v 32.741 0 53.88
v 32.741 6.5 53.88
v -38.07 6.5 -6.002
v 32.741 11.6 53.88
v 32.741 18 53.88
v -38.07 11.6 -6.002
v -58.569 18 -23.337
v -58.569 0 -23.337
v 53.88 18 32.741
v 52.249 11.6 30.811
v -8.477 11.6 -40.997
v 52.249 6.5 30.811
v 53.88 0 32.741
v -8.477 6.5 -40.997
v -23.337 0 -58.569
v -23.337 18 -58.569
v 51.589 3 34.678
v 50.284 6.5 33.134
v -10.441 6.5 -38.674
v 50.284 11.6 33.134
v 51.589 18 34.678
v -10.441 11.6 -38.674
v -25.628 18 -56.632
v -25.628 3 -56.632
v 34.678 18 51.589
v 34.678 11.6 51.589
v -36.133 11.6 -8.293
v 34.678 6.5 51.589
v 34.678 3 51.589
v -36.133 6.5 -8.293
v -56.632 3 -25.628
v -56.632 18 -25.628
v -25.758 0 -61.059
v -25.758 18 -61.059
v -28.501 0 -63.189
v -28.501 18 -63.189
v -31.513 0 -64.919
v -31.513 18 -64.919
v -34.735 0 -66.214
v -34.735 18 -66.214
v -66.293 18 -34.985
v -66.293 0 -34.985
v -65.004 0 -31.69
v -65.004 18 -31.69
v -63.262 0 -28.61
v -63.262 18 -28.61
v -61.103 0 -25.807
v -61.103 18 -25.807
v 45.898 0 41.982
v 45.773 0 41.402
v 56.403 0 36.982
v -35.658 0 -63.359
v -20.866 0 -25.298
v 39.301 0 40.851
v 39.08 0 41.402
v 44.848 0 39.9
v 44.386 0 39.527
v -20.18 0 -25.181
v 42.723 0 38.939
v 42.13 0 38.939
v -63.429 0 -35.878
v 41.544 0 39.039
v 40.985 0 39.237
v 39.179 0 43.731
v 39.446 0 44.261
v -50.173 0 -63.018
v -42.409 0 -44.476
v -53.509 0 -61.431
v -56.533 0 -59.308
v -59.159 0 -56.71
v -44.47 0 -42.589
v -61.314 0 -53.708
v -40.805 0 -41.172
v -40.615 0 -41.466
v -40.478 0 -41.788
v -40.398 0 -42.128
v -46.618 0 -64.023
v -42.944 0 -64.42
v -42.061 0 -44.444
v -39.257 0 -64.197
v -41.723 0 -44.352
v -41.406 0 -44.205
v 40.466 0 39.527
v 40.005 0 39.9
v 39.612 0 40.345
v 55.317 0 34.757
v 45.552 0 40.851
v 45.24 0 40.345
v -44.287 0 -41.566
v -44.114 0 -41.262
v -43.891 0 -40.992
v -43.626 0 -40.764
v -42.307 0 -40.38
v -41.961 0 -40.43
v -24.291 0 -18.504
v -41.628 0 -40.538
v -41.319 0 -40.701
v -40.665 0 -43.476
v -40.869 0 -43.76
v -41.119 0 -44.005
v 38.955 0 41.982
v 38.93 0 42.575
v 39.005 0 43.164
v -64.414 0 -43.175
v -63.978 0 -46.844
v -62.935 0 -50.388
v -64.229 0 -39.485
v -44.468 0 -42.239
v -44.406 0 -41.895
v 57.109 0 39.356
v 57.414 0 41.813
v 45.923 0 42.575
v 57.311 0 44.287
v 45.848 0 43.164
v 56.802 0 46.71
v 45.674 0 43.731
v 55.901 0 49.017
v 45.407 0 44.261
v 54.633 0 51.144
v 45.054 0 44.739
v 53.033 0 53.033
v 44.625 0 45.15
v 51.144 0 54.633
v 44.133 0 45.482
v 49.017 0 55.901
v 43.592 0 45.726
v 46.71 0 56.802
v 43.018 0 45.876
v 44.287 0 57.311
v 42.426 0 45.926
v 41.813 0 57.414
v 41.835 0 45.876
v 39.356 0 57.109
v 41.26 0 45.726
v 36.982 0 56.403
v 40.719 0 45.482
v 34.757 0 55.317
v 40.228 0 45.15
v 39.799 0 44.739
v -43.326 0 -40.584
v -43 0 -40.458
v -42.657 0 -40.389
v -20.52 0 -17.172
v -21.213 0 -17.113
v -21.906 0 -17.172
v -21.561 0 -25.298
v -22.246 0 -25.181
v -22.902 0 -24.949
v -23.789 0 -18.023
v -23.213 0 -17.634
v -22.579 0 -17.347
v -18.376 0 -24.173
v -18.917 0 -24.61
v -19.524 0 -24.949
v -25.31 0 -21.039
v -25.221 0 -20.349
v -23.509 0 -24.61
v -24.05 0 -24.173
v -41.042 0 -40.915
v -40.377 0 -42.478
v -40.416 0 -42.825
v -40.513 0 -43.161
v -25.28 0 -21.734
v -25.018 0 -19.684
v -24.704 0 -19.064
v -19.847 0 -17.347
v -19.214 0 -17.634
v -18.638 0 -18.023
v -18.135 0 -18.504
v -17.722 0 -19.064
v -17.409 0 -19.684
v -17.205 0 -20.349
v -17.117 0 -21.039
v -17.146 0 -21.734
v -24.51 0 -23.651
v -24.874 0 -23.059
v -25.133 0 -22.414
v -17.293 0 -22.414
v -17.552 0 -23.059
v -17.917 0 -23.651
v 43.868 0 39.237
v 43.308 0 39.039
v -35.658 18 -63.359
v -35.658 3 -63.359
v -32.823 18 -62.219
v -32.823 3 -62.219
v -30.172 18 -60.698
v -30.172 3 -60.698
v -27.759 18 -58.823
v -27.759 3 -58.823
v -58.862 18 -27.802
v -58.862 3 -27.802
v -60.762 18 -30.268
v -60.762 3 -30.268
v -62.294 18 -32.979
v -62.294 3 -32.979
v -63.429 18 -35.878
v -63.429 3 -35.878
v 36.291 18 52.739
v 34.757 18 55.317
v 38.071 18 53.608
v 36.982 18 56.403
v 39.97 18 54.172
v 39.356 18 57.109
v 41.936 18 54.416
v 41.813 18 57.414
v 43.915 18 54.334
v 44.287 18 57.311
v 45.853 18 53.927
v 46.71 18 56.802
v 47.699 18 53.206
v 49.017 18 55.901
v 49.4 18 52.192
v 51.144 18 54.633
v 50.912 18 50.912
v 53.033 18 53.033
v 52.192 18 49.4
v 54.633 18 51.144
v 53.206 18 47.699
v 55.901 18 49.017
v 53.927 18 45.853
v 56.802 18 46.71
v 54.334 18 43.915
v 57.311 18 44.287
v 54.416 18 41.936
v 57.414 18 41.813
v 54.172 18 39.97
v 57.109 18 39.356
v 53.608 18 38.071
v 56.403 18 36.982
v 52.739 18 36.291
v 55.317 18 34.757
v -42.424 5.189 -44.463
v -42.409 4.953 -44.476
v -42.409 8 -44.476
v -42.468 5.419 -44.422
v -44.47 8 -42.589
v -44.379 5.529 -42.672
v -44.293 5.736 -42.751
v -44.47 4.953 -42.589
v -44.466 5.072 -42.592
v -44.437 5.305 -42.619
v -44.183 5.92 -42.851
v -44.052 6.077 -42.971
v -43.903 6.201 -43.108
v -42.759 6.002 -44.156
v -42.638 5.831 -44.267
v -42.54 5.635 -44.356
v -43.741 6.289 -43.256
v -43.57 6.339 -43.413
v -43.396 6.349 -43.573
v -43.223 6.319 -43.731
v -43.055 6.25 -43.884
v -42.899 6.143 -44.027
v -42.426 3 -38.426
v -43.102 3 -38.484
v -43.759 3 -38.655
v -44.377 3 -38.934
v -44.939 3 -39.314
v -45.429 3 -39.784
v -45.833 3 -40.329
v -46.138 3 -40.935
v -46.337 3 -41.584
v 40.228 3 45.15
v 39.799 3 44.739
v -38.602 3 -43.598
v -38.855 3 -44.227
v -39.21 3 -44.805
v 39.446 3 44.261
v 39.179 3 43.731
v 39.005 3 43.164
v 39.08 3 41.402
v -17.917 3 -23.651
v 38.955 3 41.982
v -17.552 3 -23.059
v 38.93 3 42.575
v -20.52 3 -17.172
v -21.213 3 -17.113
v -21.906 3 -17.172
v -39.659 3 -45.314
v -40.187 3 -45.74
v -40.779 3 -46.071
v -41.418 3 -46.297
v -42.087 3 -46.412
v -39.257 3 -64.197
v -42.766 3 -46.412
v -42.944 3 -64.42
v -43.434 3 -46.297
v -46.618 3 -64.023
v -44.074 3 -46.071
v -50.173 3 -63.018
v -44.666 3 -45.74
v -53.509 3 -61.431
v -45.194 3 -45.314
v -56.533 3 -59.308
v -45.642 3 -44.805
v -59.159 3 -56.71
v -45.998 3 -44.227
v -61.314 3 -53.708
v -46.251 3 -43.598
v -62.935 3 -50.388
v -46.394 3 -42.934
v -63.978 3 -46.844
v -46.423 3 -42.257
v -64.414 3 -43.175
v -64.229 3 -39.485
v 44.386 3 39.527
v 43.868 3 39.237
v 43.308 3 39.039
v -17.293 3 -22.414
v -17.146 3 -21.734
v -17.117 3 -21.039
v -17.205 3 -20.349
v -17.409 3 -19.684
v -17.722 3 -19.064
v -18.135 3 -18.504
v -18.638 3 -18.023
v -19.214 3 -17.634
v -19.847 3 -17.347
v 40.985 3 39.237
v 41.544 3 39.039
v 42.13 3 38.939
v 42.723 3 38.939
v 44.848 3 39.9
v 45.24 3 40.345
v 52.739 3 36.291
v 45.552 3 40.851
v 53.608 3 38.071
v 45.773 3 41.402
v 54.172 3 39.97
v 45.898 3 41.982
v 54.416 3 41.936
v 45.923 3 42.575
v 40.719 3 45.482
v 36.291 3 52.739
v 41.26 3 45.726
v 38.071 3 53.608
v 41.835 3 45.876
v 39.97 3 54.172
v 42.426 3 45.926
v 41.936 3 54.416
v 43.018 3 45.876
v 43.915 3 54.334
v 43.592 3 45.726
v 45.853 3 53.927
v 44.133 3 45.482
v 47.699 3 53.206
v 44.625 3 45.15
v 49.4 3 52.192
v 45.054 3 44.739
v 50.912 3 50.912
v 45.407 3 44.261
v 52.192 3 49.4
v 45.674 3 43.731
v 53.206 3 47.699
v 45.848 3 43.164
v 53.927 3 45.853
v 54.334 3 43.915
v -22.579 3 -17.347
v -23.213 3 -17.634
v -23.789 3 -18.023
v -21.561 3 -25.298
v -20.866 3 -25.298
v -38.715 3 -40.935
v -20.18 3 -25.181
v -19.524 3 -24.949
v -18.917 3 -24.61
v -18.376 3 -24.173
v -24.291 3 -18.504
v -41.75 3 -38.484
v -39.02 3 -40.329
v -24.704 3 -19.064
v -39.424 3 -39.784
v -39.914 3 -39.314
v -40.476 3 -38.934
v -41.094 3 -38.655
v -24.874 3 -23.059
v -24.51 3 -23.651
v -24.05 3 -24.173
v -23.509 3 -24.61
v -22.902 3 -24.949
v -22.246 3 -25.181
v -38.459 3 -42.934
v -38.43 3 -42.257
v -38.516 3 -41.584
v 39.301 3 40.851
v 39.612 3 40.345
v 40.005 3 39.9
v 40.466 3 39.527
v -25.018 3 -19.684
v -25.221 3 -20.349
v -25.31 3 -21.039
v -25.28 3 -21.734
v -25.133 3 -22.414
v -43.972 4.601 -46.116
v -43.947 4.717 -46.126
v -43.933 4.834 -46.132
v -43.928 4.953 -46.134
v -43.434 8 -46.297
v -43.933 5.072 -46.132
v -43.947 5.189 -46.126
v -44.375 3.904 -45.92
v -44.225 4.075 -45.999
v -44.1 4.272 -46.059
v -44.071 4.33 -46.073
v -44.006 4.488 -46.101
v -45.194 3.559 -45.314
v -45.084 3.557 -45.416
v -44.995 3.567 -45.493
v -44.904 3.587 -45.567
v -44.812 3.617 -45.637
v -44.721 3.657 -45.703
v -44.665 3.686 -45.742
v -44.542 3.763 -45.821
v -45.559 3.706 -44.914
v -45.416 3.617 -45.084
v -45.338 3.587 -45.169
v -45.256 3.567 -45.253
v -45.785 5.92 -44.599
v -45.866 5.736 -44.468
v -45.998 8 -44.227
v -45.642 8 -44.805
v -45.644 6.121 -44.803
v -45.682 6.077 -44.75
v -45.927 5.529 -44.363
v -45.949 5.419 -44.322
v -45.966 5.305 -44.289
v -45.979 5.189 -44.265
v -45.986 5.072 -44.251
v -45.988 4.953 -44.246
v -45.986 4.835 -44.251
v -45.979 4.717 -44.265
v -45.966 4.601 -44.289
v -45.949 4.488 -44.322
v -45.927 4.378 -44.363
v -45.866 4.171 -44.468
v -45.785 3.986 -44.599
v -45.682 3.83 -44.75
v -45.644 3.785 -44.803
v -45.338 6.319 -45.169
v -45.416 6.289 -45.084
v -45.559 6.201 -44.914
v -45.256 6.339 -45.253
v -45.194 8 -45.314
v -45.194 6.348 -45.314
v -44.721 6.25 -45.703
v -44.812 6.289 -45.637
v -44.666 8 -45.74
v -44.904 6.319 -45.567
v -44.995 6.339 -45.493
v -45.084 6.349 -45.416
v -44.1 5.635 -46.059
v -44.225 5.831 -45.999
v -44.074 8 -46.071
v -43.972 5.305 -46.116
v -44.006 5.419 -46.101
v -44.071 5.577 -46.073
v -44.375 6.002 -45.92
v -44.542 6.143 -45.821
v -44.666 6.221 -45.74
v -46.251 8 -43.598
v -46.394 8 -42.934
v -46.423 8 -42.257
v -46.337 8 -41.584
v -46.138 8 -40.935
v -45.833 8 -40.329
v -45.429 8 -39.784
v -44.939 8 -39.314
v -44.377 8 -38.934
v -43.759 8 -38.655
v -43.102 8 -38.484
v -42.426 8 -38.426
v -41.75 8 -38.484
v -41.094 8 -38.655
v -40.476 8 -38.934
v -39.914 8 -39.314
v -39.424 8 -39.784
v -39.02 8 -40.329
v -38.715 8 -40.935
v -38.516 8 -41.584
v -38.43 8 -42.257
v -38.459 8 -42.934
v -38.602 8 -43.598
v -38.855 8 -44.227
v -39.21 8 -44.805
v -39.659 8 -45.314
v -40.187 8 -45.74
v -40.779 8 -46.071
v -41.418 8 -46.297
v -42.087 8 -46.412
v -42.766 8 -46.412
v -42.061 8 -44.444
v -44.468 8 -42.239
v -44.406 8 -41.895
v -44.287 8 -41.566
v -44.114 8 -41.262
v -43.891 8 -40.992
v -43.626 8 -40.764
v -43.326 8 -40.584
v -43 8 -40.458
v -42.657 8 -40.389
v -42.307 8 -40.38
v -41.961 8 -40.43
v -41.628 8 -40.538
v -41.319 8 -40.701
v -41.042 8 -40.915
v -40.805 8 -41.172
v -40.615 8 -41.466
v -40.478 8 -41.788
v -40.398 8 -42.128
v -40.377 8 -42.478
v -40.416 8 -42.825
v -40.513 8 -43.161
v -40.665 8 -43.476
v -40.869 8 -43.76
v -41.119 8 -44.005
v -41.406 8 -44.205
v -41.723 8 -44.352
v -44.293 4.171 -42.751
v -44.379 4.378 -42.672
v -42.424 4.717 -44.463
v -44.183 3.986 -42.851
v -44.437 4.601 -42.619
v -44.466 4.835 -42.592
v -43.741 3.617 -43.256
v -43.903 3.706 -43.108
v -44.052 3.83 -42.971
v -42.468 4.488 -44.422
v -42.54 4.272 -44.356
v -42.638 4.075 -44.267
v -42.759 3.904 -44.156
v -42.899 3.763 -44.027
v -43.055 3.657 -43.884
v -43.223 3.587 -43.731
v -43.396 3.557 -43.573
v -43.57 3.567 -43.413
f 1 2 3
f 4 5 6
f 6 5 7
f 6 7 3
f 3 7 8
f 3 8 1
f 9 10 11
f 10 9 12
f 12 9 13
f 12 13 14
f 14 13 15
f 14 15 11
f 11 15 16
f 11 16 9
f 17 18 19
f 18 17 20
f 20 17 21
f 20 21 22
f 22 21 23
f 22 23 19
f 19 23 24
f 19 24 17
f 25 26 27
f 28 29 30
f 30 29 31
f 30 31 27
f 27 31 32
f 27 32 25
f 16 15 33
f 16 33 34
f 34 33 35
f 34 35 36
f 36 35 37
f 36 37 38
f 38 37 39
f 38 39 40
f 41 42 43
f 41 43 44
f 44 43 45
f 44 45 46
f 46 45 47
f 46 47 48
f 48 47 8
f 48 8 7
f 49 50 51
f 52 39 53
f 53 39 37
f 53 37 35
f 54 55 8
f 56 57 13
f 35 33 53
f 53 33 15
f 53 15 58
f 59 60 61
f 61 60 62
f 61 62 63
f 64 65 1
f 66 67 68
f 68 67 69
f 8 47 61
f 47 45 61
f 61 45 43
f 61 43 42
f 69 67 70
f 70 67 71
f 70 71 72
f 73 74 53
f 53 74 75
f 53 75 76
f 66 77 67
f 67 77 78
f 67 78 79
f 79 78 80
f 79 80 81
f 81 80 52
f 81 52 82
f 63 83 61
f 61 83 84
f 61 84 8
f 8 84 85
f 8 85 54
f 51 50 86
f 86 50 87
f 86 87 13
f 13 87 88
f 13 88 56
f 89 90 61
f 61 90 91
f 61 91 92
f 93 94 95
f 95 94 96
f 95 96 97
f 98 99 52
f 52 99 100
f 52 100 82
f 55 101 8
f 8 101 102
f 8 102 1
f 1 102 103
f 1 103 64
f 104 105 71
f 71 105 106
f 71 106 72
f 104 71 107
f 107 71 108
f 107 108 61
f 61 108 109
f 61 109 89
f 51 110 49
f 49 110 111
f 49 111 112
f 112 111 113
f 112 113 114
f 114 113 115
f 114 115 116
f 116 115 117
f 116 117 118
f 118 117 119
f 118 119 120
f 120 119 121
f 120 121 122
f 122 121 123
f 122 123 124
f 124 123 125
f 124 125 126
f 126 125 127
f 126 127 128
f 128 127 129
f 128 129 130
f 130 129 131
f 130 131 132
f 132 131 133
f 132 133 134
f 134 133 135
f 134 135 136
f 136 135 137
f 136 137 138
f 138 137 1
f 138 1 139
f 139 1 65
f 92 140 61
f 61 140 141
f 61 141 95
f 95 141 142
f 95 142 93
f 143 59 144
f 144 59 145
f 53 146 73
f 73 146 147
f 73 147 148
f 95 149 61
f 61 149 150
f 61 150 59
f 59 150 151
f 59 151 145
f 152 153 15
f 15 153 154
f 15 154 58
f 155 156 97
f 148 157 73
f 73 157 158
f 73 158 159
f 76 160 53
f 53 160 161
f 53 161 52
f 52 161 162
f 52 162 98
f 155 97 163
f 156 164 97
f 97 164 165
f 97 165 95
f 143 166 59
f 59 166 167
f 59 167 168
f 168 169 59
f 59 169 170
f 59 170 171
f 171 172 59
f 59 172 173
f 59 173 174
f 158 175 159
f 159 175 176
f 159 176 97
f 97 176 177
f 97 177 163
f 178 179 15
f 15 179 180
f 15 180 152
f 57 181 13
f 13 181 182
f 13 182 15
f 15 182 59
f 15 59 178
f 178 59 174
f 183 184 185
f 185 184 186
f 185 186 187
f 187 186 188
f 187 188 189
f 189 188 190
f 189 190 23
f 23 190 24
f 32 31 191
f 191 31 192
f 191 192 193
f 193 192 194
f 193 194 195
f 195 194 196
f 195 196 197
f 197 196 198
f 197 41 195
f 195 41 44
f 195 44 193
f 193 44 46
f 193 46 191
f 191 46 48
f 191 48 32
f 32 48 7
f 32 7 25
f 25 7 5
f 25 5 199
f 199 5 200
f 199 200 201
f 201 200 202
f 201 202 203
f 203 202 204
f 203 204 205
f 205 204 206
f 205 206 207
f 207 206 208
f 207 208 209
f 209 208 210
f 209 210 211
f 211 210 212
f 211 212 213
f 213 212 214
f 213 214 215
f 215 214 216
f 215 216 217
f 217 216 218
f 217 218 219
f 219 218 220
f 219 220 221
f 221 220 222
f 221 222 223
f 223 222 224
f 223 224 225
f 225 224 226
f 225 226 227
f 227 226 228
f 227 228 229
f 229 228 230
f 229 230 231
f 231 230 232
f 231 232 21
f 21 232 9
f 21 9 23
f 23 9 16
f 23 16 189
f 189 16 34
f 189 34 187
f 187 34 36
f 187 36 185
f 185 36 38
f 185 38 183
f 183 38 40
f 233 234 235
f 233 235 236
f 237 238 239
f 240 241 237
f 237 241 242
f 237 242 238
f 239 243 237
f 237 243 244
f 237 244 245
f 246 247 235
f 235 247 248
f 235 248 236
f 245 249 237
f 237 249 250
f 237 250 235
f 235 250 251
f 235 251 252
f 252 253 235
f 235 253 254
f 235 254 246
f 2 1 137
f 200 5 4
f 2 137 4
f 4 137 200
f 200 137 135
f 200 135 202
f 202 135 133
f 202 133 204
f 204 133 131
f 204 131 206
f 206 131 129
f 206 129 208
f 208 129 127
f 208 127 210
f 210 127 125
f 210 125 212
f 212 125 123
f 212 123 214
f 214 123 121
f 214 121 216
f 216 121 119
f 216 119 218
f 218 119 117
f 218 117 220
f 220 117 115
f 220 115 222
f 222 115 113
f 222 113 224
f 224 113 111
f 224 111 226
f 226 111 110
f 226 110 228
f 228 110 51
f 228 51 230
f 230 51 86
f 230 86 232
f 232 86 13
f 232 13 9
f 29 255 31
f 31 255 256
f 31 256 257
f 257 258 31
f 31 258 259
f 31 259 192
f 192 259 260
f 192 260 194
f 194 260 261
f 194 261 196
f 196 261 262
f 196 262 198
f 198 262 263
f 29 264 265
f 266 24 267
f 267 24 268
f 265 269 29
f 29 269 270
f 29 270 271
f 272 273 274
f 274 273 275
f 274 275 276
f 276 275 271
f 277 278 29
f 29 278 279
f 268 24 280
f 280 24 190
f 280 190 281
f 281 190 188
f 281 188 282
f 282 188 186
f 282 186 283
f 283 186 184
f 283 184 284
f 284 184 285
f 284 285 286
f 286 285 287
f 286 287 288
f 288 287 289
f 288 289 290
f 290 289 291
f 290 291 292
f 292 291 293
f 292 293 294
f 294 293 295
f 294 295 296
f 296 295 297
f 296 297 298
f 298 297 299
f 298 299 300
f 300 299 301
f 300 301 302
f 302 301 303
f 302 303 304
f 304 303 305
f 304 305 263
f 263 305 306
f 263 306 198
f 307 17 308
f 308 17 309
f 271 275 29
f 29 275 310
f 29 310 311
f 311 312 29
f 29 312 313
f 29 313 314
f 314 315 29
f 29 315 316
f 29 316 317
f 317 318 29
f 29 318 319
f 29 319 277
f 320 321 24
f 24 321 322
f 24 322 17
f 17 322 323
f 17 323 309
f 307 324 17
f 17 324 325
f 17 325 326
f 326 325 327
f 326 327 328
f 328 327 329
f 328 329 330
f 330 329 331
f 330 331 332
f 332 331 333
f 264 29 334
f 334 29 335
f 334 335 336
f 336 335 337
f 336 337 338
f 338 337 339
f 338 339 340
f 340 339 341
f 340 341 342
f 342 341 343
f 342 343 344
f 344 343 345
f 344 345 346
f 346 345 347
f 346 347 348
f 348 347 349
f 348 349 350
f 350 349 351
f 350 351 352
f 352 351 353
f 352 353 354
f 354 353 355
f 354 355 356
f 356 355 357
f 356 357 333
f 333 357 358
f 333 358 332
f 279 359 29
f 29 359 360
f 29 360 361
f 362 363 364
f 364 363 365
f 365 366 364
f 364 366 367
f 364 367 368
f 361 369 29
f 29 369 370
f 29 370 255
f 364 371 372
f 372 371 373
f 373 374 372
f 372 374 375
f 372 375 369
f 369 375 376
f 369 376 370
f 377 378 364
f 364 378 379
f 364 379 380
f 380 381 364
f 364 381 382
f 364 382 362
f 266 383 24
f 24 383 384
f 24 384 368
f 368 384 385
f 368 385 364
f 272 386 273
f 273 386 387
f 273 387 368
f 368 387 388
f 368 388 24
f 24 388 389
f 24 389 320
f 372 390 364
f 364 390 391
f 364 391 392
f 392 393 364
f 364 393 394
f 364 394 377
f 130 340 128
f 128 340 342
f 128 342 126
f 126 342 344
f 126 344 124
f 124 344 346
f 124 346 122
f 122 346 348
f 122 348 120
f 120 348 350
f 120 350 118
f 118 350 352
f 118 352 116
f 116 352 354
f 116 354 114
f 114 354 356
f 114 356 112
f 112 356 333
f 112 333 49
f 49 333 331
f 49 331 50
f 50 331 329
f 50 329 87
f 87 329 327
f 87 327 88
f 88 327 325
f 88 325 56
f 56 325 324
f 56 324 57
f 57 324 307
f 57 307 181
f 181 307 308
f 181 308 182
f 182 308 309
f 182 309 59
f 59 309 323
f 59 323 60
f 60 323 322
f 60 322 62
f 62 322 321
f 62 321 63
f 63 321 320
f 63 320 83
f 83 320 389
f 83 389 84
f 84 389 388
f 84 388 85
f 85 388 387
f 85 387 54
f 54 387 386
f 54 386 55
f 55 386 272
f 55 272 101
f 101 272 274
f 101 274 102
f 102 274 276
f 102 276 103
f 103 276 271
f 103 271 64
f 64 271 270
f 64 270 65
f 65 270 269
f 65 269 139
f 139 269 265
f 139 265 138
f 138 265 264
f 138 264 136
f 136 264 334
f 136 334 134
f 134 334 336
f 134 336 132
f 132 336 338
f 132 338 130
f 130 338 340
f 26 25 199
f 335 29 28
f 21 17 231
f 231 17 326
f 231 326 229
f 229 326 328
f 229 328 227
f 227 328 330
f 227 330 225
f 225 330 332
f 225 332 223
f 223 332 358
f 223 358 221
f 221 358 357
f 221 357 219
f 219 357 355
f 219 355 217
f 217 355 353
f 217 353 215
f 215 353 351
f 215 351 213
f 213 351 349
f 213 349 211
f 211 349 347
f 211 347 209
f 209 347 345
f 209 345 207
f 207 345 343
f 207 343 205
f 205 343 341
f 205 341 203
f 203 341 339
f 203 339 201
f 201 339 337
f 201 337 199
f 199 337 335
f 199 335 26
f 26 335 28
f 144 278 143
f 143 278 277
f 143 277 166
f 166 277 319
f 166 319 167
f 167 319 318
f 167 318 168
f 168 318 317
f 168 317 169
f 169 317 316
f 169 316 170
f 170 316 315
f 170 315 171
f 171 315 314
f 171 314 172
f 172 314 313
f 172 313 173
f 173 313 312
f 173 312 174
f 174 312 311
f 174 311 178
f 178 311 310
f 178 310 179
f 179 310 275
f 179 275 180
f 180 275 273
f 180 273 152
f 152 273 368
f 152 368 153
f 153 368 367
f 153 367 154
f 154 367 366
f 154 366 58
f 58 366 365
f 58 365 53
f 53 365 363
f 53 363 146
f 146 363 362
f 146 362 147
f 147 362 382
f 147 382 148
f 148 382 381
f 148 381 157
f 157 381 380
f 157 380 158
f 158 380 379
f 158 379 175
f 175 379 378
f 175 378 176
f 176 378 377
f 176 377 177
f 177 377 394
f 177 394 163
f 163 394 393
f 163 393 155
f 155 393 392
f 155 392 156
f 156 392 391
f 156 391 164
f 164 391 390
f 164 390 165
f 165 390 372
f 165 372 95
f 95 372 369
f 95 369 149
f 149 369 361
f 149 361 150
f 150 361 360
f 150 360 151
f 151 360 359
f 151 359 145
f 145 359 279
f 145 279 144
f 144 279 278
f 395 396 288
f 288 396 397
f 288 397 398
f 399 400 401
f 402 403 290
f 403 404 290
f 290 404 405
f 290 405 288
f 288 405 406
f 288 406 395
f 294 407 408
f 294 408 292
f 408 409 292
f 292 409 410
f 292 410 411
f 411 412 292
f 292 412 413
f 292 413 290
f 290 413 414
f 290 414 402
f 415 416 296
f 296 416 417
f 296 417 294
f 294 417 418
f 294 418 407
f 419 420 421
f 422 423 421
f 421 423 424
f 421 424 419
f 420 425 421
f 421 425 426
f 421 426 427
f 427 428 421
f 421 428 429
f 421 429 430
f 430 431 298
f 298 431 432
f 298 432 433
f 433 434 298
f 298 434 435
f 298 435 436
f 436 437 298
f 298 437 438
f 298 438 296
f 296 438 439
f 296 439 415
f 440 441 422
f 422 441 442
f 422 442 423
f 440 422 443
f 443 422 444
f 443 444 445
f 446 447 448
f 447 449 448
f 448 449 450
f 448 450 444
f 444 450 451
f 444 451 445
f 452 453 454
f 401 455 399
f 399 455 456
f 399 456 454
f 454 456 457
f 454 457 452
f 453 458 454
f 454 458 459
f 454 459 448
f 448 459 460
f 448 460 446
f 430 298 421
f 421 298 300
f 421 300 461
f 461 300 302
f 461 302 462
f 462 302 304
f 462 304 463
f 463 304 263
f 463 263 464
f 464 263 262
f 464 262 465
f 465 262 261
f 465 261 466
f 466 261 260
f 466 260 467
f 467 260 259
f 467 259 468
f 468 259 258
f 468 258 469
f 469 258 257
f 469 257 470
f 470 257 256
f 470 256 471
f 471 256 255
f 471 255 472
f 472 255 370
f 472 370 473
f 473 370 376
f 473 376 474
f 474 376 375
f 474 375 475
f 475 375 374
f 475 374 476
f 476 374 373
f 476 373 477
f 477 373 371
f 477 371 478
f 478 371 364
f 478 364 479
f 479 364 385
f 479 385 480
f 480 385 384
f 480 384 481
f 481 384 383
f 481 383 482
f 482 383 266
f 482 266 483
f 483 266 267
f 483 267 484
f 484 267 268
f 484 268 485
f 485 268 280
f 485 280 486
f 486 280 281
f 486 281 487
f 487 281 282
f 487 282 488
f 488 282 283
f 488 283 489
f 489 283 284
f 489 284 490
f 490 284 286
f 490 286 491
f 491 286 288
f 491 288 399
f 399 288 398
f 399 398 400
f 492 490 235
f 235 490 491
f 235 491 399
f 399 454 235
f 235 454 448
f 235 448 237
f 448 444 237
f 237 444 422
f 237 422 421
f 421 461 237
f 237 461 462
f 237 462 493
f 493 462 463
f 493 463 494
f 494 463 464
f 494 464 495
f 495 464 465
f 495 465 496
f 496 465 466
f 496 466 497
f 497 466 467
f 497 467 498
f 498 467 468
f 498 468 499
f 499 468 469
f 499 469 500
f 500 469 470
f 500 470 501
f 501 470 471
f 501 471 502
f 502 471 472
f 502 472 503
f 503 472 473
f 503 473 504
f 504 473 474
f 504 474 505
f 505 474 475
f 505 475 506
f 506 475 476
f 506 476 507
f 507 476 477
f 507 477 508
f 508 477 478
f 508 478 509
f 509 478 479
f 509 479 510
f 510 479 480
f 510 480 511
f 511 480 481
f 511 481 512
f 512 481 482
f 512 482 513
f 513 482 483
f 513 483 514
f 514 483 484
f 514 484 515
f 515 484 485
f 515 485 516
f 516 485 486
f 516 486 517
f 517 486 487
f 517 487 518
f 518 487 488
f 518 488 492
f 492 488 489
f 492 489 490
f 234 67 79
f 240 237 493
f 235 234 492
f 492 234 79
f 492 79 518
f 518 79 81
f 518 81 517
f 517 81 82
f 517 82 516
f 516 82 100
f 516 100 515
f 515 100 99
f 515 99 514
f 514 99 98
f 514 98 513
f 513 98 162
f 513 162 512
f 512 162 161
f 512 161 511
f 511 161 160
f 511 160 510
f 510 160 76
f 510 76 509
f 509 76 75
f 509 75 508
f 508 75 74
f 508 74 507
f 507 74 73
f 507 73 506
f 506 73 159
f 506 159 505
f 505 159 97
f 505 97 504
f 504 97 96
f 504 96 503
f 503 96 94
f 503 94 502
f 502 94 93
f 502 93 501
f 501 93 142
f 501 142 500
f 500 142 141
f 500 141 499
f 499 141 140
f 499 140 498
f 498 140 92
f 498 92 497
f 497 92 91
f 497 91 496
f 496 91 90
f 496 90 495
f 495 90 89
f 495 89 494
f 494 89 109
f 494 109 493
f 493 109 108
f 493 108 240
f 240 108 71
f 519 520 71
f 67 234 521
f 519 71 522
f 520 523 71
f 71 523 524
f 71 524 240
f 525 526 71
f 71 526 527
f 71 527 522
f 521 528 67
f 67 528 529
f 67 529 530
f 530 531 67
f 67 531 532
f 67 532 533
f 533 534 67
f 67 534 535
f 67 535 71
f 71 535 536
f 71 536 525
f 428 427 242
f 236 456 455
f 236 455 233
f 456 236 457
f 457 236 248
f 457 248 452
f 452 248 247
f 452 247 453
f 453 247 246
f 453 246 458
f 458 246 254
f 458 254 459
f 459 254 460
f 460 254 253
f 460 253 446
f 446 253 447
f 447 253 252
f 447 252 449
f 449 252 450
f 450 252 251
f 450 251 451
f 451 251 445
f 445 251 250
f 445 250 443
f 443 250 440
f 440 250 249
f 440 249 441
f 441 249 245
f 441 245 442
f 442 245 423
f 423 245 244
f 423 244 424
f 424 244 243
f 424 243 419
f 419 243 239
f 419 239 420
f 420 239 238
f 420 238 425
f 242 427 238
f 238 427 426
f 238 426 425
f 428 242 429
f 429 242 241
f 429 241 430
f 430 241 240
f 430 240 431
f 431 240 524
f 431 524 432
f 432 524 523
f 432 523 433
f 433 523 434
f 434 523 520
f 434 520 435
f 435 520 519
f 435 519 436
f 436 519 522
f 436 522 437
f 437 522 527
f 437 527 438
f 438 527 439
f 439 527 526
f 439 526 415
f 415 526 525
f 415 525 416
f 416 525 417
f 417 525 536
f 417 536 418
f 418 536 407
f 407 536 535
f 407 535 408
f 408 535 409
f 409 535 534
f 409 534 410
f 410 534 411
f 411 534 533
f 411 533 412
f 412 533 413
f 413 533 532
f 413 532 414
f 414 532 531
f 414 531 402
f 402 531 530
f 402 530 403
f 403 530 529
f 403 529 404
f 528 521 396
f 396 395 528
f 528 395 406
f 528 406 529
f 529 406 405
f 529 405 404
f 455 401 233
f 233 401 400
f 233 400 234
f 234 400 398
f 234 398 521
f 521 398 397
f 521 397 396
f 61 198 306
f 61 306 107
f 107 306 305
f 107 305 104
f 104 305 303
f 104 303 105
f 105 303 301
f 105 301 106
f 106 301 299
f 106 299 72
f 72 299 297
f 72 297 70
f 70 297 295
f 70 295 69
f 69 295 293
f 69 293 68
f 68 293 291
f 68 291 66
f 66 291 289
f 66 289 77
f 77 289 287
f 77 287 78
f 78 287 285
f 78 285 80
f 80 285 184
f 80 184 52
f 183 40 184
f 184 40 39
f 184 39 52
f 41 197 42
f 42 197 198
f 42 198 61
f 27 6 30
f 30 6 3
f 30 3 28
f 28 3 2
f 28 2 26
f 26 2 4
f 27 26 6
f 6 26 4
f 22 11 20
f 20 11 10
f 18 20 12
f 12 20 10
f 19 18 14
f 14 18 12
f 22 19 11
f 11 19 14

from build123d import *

# Parameters (mm, degrees)
EXTRUDE_2_DEPTH           = 3
SKETCH_4_R                = 2.25
SKETCH_4_R_2              = 2.5
CUT_EXTRUDE_2_DEPTH       = 96.402519291
SKETCH_6_R                = 3.5
CUT_EXTRUDE_3_DEPTH       = 96.402519291
SKETCH_7_R                = 3.5
CUT_EXTRUDE_4_DEPTH       = 96.402519291
CUT_EXTRUDE_5_DEPTH       = 96.402519291
EXTRUDE_4_DEPTH           = 15
EXTRUDE_5_DEPTH           = 3
SKETCH_11_R               = 4.1
CUT_EXTRUDE_6_DEPTH       = 3
SKETCH_13_R               = 3.5
EXTRUDE_6_DEPTH           = 3
SKETCH_14_R               = 2.05
EXTRUDE_7_DEPTH           = 5
EXTRUDE_START             = -5
SKETCH_15_R               = 4
SKETCH_15_R_2             = 2.05
EXTRUDE_8_DEPTH           = 5
CUT_EXTRUDE_7_DEPTH       = 96.878259721
SKETCH_18_R               = 1.397318861
CUT_EXTRUDE_8_DEPTH       = 144.753442506
CUT_EXTRUDE_9_DEPTH       = 97.527927136
CUT_EXTRUDE_9_DEPTH_BACK  = 97.527927136
CUT_EXTRUDE_11_DEPTH      = 110.140706759
CUT_EXTRUDE_11_DEPTH_BACK = 110.140706759
SKETCH_20_W               = 92.736362136
SKETCH_20_H               = 2.6
SKETCH_20_H_2             = 2.5


with BuildPart() as part:
    # 草图2 → 凸台-拉伸2 (new body)
    with BuildSketch(Plane(origin=(0, 0, 0), x_dir=(1, 0, 0), z_dir=(0, 1, 0))):
        with BuildLine():
            Line((-58.569449541, 23.337085947), (32.740581269, -53.879999426))
            ThreePointArc((32.740581269, -53.879999426), (53.033008589, -53.033008589), (53.879999426, -32.740581269))
            Line((53.879999426, -32.740581269), (-23.337085947, 58.569449541))
            ThreePointArc((-23.337085947, 58.569449541), (-60.104076401, 60.104076401), (-58.569449541, 23.337085947))
        make_face()
    extrude(amount=EXTRUDE_2_DEPTH)

    # 草图4 → 切除-拉伸2 (cut, through all)
    with BuildSketch(Plane(origin=(0, 3, 0), x_dir=(1, 0, 0), z_dir=(0, 1, 0))):
        with Locations(Location((-42.426406871, 42.426406871, 0), (0, 0, 270))):
            Circle(SKETCH_4_R)
        with Locations(Location((42.426406871, -42.426406871, 0), (0, 0, 270))):
            Circle(SKETCH_4_R_2)
    extrude(amount=-CUT_EXTRUDE_2_DEPTH, mode=Mode.SUBTRACT)

    # 草图6 → 切除-拉伸3 (cut, through all)
    with BuildSketch(Plane(origin=(0, 3, 0), x_dir=(1, 0, 0), z_dir=(0, 1, 0))):
        with Locations(Location((-42.426406871, 42.426406871, 0), (0, 0, 270))):
            Circle(SKETCH_6_R)
    extrude(amount=-CUT_EXTRUDE_3_DEPTH, mode=Mode.SUBTRACT)

    # 草图7 → 切除-拉伸4 (cut, through all)
    with BuildSketch(Plane(origin=(0, 3, 0), x_dir=(1, 0, 0), z_dir=(0, 1, 0))):
        with Locations(Location((42.426406871, -42.426406871, 0), (0, 0, 270))):
            Circle(SKETCH_7_R)
    extrude(amount=-CUT_EXTRUDE_4_DEPTH, mode=Mode.SUBTRACT)

    # 草图8 → 切除-拉伸5 (cut, through all)
    with BuildSketch(Plane(origin=(0, 3, 0), x_dir=(1, 0, 0), z_dir=(0, 1, 0))):
        Polygon((33.626672858, -22.564710472), (-15.702999665, 25.870376375), (-26.891422763, 12.98046534), (25.218843822, -32.251166492), align=None)
    extrude(amount=-CUT_EXTRUDE_5_DEPTH, mode=Mode.SUBTRACT)

    # 草图9 → 凸台-拉伸4 (add)
    with BuildSketch(Plane(origin=(0, 3, 0), x_dir=(1, 0, 0), z_dir=(0, 1, 0))):
        with BuildLine():
            ThreePointArc((-17.960284018, 47.565359346), (-19.96440182, 53.401757848), (-23.337085947, 58.569449541))
            ThreePointArc((-23.337085947, 58.569449541), (-60.104076401, 60.104076401), (-58.569449541, 23.337085947))
            ThreePointArc((-58.569449541, 23.337085947), (-53.401757848, 19.96440182), (-47.565359346, 17.960284018))
            Line((-47.565359346, 17.960284018), (-56.632284421, 25.627804458))
            ThreePointArc((-56.632284421, 25.627804458), (-57.982756057, 57.982756057), (-25.627804458, 56.632284421))
            Line((-25.627804458, 56.632284421), (-17.960284018, 47.565359346))
        make_face()
        with BuildLine():
            Line((53.879999426, -32.740581269), (-23.337085947, 58.569449541))
            ThreePointArc((-23.337085947, 58.569449541), (-19.96440182, 53.401757848), (-17.960284018, 47.565359346))
            Line((-17.960284018, 47.565359346), (45.777785554, -27.805590857))
            ThreePointArc((45.777785554, -27.805590857), (50.229311839, -29.615681908), (53.879999426, -32.740581269))
        make_face()
        with BuildLine():
            ThreePointArc((-47.565359346, 17.960284018), (-53.401757848, 19.96440182), (-58.569449541, 23.337085947))
            Line((-58.569449541, 23.337085947), (32.740581269, -53.879999426))
            ThreePointArc((32.740581269, -53.879999426), (29.615681908, -50.229311839), (27.805590857, -45.777785554))
            Line((27.805590857, -45.777785554), (-47.565359346, 17.960284018))
        make_face()
        with BuildLine():
            ThreePointArc((57.426406871, -42.426406871), (56.511929373, -37.26907657), (53.879999426, -32.740581269))
            ThreePointArc((53.879999426, -32.740581269), (50.229311839, -29.615681908), (45.777785554, -27.805590857))
            Line((45.777785554, -27.805590857), (51.589280915, -34.67774639))
            ThreePointArc((51.589280915, -34.67774639), (53.694824873, -38.30054263), (54.426406871, -42.426406871))
            ThreePointArc((54.426406871, -42.426406871), (47.47695507, -53.311808237), (34.67774639, -51.589280915))
            Line((34.67774639, -51.589280915), (27.805590857, -45.777785554))
            ThreePointArc((27.805590857, -45.777785554), (29.615681908, -50.229311839), (32.740581269, -53.879999426))
            ThreePointArc((32.740581269, -53.879999426), (48.73959212, -56.033158578), (57.426406871, -42.426406871))
        make_face()
    extrude(amount=EXTRUDE_4_DEPTH)

    # 草图10 → 凸台-拉伸5 (add)
    with BuildSketch(Plane(origin=(0, 3, 0), x_dir=(1, 0, 0), z_dir=(0, 1, 0))):
        Polygon((10.528753113, -10.528753113), (-20.427450775, 20.427450775), (-26.891422763, 12.98046534), (25.218843822, -32.251166492), (28.486536718, -28.486536718), align=None)
        Polygon((-15.702999665, 25.870376375), (-20.427450775, 20.427450775), (10.528753113, -10.528753113), (28.486536718, -28.486536718), (33.626672858, -22.564710472), align=None)
    extrude(amount=-EXTRUDE_5_DEPTH)

    # 草图11 → 切除-拉伸6 (cut)
    with BuildSketch(Plane(origin=(0, 3, 0), x_dir=(1, 0, 0), z_dir=(0, 1, 0))):
        with Locations(Location((-21.213203436, 21.213203436, 0), (0, 0, 270))):
            Circle(SKETCH_11_R)
    extrude(amount=-CUT_EXTRUDE_6_DEPTH, mode=Mode.SUBTRACT)

    # 草图13 → 凸台-拉伸6 (add)
    with BuildSketch(Plane(origin=(0, 3, 0), x_dir=(1, 0, 0), z_dir=(0, 1, 0))):
        with Locations((-42.426406871, 42.426406871)):
            Circle(SKETCH_13_R)
    extrude(amount=-EXTRUDE_6_DEPTH)

    # 草图14 → 凸台-拉伸7 (add)
    with BuildSketch(Plane(origin=(0, 3, 0), x_dir=(1, 0, 0), z_dir=(0, 1, 0))):
        with Locations(Location((-42.426406871, 42.426406871, 0), (0, 0, 270))):
            Circle(SKETCH_14_R)
    extrude(amount=EXTRUDE_7_DEPTH)

    # 草图15 → 凸台-拉伸8 (add)
    with BuildSketch(Plane(origin=(0, 8, 0), x_dir=(1, 0, 0), z_dir=(0, 1, 0)).offset(EXTRUDE_START)):
        with Locations(Location((-42.426406871, 42.426406871, 0), (0, 0, 270))):
            Circle(SKETCH_15_R)
        with Locations((-42.426406871, 42.426406871)):
            Circle(SKETCH_15_R_2, mode=Mode.SUBTRACT)
    extrude(amount=EXTRUDE_8_DEPTH)

    # 草图17 → 切除-拉伸7 (cut, through all)
    with BuildSketch(Plane(origin=(0, 8, 0), x_dir=(1, 0, 0), z_dir=(0, 1, 0))):
        with BuildLine():
            Line((-42.409215342, 44.476334785), (-43.439595085, 43.532503451))
            Line((-43.439595085, 43.532503451), (-44.469974827, 42.588672118))
            ThreePointArc((-44.469974827, 42.588672118), (-42.507603209, 40.378015513), (-40.376406871, 42.426406871))
            ThreePointArc((-40.376406871, 42.426406871), (-40.970772536, 43.869884853), (-42.409215342, 44.476334785))
        make_face()
    extrude(amount=-CUT_EXTRUDE_7_DEPTH, mode=Mode.SUBTRACT)

    # 草图18 → 切除-拉伸8 (cut, through all)
    with BuildSketch(Plane(origin=(-41.501827845, 0, -45.307504805), x_dir=(0.7373977200215518, 0, -0.6754588088899406), z_dir=(0.6754588088899406, 0, 0.7373977200215518))):
        with Locations((-2.627845445, 4.953208644)):
            Circle(SKETCH_18_R)
    extrude(amount=-CUT_EXTRUDE_8_DEPTH, mode=Mode.SUBTRACT)

    # 草图19 → 切除-拉伸9 (cut, two sides: drawn at the far end of the back side and taken through both)
    with BuildSketch(Plane(origin=(0, 3, 0), x_dir=(1, 0, 0), z_dir=(0, 1, 0)).offset(-CUT_EXTRUDE_9_DEPTH_BACK)):
        with BuildLine():
            Line((-66.29326799, 34.985107232), (-63.429244656, 35.878063189))
            ThreePointArc((-63.429244656, 35.878063189), (-57.900931168, 58.064152802), (-35.65805893, 63.35938244))
            Line((-35.65805893, 63.35938244), (-34.735102393, 66.213879108))
            ThreePointArc((-34.735102393, 66.213879108), (-60.011093572, 60.196572701), (-66.29326799, 34.985107232))
        make_face()
    extrude(amount=CUT_EXTRUDE_9_DEPTH + CUT_EXTRUDE_9_DEPTH_BACK, mode=Mode.SUBTRACT)

    # 草图20 → 切除-拉伸11 (cut, two sides: drawn at the far end of the back side and taken through both)
    with BuildSketch(Plane(origin=(-12.914434136, 0, 15.27145674), x_dir=(0.7635728369858691, 0, 0.6457217067881111), z_dir=(-0.6457217067881111, 0, 0.7635728369858691)).offset(-CUT_EXTRUDE_11_DEPTH_BACK)):
        with Locations((13.423122648, 10.3)):
            Rectangle(SKETCH_20_W, SKETCH_20_H)
        with Locations((13.423122648, 7.75)):
            Rectangle(SKETCH_20_W, SKETCH_20_H_2)
    extrude(amount=CUT_EXTRUDE_11_DEPTH + CUT_EXTRUDE_11_DEPTH_BACK, mode=Mode.SUBTRACT)


solid = part.part
